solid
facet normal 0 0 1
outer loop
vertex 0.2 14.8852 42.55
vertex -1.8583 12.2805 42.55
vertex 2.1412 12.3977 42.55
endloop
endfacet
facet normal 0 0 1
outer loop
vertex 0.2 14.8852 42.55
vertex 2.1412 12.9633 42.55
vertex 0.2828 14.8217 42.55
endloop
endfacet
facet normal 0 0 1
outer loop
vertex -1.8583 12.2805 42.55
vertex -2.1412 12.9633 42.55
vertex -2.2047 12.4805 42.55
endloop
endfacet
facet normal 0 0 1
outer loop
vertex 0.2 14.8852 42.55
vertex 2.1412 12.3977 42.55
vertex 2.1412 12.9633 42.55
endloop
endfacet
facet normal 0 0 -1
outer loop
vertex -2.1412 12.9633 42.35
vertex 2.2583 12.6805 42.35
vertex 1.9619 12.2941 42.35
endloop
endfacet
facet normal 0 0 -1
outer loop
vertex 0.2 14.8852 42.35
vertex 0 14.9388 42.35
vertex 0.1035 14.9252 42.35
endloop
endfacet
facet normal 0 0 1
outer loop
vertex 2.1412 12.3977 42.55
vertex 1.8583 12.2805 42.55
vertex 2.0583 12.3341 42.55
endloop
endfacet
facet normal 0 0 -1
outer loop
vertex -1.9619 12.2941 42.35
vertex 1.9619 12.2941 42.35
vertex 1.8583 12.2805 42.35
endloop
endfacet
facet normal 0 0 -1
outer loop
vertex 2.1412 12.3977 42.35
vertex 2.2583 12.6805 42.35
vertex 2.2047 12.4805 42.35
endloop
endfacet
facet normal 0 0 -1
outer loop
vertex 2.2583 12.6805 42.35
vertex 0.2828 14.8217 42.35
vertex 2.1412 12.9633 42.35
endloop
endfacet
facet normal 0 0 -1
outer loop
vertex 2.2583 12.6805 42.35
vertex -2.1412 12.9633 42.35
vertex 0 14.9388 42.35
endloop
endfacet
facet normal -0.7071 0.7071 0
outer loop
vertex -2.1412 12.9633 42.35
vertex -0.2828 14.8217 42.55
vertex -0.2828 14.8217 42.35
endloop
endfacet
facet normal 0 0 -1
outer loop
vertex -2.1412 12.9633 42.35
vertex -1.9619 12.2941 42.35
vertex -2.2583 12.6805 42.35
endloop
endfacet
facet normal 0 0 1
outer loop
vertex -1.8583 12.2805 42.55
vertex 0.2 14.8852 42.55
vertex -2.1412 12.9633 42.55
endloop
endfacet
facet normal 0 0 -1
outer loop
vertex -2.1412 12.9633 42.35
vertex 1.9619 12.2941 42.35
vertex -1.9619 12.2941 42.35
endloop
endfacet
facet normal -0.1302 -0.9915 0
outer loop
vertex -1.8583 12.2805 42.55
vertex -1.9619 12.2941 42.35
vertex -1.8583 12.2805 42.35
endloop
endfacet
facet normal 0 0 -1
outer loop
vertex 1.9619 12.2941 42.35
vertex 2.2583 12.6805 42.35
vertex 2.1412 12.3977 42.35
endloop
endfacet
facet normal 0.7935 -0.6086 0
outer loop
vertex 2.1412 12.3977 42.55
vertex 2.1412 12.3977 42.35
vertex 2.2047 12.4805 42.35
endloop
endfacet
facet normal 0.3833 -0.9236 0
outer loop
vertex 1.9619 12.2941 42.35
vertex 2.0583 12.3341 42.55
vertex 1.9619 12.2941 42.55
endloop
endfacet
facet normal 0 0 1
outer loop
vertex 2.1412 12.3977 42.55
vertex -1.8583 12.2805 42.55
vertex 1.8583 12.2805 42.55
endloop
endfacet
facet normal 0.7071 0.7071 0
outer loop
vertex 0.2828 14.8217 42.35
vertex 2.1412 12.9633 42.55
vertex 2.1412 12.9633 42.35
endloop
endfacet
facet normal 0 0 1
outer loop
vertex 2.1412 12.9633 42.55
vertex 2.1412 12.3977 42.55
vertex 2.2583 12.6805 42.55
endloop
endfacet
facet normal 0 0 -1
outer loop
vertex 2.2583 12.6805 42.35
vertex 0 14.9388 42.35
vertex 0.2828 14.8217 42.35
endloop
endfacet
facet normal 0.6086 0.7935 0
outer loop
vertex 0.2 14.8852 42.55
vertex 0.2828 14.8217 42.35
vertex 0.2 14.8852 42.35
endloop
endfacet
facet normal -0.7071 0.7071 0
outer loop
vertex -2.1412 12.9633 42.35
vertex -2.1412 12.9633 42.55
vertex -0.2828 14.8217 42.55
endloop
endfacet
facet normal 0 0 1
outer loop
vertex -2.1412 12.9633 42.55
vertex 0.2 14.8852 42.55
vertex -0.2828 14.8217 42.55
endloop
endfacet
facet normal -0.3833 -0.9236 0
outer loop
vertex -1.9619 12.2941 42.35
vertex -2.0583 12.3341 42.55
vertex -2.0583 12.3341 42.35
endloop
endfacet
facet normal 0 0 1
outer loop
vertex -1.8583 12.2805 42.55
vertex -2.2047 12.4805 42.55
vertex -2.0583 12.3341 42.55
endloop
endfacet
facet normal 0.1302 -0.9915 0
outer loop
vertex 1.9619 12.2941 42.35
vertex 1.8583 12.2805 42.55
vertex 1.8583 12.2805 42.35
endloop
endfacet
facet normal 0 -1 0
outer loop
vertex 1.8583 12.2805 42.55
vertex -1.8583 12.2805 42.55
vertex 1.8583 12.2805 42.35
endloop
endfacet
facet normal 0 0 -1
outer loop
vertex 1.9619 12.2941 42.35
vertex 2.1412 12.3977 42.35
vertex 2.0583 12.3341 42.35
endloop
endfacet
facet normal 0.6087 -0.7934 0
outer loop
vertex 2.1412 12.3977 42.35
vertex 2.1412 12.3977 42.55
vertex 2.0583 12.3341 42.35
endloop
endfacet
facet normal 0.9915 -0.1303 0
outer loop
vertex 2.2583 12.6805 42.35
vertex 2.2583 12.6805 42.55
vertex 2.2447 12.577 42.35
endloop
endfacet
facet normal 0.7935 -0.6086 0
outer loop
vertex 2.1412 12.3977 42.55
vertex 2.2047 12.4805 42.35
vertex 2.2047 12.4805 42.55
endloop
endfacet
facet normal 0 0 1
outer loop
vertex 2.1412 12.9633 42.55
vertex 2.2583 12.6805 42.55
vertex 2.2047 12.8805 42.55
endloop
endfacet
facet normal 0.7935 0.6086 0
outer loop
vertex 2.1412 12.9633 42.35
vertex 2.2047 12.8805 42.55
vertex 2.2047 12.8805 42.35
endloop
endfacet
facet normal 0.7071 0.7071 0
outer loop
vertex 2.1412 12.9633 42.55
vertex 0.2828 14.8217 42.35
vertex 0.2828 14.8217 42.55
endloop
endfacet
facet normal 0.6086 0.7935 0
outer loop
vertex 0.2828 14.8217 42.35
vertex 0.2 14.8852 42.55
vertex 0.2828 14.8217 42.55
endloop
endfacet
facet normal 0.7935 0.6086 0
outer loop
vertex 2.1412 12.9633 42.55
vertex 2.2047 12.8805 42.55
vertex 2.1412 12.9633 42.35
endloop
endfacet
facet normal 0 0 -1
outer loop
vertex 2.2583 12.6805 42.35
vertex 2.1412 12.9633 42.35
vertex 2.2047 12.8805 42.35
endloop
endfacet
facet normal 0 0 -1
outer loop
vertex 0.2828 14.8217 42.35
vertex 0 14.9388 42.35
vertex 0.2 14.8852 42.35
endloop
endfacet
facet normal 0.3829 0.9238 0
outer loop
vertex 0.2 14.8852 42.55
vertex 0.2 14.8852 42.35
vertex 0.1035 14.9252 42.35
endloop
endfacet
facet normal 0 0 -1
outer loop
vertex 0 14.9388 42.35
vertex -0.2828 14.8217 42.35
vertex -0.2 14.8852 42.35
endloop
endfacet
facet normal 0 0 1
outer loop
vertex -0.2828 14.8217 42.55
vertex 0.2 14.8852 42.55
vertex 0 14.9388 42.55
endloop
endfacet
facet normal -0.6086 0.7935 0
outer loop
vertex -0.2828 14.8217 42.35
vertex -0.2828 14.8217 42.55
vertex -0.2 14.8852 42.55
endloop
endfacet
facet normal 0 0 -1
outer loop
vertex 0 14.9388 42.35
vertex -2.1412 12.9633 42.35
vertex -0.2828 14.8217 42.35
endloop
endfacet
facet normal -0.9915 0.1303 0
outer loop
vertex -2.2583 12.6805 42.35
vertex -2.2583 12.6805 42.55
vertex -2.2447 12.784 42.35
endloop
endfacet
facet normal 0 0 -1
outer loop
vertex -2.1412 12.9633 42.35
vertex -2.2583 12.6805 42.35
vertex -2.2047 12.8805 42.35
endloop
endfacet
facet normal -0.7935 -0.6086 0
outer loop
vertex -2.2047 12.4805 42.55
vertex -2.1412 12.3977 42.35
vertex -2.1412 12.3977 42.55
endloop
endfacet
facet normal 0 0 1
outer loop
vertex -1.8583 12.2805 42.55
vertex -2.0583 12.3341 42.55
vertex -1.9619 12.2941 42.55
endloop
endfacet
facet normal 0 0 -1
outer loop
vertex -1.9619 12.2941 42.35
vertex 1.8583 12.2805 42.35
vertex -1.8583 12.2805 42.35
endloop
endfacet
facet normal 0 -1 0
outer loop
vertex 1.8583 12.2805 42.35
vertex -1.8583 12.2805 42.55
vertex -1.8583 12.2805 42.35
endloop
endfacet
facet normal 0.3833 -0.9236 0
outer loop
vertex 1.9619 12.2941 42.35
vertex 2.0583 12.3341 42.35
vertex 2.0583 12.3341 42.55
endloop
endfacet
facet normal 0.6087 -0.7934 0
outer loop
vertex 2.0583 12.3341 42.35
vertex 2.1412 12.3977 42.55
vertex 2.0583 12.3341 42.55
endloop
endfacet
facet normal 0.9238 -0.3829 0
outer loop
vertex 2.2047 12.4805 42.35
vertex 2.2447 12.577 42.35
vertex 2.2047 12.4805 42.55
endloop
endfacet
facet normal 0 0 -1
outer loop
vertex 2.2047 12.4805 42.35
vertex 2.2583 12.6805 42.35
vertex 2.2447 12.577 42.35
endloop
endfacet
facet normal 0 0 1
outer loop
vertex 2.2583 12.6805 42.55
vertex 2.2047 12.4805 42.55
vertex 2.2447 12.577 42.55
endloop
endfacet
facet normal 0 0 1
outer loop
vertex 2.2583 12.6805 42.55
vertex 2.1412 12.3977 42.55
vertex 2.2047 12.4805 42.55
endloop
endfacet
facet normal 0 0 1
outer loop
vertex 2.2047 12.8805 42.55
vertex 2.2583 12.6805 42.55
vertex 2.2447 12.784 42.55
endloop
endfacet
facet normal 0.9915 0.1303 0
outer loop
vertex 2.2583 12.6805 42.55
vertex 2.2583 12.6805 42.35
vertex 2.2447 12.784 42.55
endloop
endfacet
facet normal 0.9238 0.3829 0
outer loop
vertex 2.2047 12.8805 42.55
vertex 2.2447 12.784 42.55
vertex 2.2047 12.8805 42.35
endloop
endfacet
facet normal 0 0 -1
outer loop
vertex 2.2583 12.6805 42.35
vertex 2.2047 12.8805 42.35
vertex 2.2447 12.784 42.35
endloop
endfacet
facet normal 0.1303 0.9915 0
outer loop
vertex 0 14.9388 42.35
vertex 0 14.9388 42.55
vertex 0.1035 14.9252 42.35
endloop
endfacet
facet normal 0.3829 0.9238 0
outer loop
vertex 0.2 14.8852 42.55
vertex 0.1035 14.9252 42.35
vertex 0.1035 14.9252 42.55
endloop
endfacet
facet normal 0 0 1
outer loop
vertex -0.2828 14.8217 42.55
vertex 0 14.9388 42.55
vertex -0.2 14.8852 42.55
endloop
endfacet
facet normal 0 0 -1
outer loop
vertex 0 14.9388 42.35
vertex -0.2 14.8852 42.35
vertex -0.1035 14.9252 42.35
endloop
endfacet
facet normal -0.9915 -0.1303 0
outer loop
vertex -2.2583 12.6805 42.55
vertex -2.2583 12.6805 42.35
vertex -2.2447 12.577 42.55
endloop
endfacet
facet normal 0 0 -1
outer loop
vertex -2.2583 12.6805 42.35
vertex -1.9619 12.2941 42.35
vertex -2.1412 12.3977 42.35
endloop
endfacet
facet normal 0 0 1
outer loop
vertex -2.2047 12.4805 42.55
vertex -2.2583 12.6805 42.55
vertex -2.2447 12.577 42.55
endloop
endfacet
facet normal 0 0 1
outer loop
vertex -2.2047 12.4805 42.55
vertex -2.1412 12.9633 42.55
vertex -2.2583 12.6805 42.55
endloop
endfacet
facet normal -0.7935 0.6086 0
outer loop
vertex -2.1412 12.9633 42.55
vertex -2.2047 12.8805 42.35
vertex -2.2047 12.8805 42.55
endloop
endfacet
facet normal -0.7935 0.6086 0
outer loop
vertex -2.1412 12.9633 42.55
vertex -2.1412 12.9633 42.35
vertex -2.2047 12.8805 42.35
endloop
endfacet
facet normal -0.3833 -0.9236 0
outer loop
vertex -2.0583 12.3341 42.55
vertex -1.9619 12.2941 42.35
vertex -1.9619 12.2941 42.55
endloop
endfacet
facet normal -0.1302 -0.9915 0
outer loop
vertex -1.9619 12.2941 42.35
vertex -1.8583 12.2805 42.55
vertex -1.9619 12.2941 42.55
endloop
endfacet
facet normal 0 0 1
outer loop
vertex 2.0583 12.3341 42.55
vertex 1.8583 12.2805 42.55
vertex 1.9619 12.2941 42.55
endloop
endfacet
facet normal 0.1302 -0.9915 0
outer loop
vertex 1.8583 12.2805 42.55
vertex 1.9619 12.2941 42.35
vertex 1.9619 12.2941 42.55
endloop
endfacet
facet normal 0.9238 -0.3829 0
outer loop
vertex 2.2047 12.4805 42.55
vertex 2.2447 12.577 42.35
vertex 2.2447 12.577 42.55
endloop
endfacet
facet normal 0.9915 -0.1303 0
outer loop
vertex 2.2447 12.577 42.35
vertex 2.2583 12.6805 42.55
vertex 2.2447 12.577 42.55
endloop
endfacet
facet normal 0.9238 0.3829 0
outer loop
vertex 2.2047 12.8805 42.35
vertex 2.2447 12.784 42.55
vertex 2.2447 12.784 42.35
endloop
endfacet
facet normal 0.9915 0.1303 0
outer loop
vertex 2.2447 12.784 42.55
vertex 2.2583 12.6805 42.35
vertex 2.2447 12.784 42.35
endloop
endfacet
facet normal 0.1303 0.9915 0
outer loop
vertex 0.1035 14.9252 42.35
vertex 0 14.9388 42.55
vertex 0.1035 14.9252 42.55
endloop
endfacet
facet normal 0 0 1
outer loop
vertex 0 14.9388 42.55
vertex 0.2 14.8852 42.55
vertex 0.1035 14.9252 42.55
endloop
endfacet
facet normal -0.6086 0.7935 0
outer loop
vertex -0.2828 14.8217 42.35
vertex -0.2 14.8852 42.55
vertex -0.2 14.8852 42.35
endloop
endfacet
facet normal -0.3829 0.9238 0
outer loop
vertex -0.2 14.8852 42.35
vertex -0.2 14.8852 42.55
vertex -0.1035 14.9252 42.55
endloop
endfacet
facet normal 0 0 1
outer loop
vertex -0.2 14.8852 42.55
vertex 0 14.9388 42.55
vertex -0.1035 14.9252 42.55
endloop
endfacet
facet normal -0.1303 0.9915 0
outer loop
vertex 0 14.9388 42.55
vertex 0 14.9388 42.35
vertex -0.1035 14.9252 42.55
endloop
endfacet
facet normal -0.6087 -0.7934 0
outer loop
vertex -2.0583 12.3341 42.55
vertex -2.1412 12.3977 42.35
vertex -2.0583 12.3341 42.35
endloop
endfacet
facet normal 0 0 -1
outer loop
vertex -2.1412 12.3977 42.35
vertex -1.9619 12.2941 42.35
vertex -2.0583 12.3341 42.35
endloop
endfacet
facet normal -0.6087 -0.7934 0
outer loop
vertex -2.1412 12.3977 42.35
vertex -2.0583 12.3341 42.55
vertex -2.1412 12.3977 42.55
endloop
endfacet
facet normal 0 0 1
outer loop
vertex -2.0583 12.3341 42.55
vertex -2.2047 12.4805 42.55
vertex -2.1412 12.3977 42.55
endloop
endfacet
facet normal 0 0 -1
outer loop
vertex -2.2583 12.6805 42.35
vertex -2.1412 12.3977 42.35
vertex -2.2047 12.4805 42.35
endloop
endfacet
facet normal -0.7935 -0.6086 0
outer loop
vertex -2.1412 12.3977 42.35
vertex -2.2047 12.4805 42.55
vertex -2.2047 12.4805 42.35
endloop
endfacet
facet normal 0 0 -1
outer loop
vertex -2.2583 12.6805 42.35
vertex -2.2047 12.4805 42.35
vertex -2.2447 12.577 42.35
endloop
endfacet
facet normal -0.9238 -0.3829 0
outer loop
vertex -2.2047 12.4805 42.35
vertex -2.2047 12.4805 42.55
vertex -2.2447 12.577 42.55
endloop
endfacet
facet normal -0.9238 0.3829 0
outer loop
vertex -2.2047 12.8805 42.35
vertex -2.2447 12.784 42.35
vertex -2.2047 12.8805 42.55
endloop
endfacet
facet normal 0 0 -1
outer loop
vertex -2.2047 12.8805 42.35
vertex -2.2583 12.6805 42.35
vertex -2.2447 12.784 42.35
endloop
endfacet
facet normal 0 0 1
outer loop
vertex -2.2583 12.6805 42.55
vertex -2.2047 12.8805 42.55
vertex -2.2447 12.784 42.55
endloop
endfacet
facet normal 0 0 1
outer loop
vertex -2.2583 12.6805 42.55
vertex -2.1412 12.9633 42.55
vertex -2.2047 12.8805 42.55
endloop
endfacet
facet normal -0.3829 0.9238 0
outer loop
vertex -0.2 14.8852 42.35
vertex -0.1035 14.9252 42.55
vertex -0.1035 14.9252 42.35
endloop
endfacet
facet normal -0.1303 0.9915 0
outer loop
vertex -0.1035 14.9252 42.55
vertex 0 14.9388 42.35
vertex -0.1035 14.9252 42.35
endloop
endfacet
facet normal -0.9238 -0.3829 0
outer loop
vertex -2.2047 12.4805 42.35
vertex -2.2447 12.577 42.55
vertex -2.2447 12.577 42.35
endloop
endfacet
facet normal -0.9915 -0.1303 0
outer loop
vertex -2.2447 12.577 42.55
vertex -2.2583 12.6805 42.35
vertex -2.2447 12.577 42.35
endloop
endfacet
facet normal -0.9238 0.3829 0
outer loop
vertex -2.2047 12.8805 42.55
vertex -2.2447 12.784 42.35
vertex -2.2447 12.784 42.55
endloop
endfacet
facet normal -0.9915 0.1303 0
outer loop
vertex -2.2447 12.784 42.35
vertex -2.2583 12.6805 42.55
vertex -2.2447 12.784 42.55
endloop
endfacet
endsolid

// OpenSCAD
// file: def.scad
round_radius = 0.6;
sticker_margin = 1.2;
sticker_round_radius = 0.4;
cube_size = 60;
disk_height = 12.5;
disk_radius = cube_size / 2;
base_size = cube_size / 2 / sqrt(10 + 7 * sqrt(2));
cut1_dis = base_size * (1 + sqrt(2) / 2);
cut2_dis = cube_size / 2;
inf = cube_size * 10;

module _cube() {
    cube([cube_size - round_radius * 2, cube_size - round_radius * 2, cube_size - round_radius * 2], center = true);
}

module _disk() {
    translate([0, 0, cube_size / 2 + disk_height / 2])
        cylinder(r = disk_radius - round_radius, h = disk_height - round_radius * 2, center = true, $fn = 96);
}

module _int_cut1() {
    translate([-inf, -inf, cut1_dis + round_radius])
        cube([inf * 2, inf * 2, inf]);
}

module _dif_cut1() {
    translate([-inf, -inf, cut1_dis - round_radius])
        cube([inf * 2, inf * 2, inf]);
}

module _sticker_int_cut1() {
    translate([-inf, -inf, cut1_dis + sticker_margin])
        cube([inf * 2, inf * 2, inf]);
}

module _sticker_dif_cut1() {
    translate([-inf, -inf, cut1_dis - sticker_margin])
        cube([inf * 2, inf * 2, inf]);
}

module _int_cut2() {
    translate([-inf, -inf, cut2_dis + round_radius])
        cube([inf * 2, inf * 2, inf]);
}

module _dif_cut2() {
    translate([-inf, -inf, cut2_dis - round_radius])
        cube([inf * 2, inf * 2, inf]);
}

module _sticker_int_cut2() {
    translate([-inf, -inf, cut2_dis + sticker_margin])
        cube([inf * 2, inf * 2, inf]);
}

module _sticker_dif_cut2() {
    translate([-inf, -inf, cut2_dis - sticker_margin])
        cube([inf * 2, inf * 2, inf]);
}

module _sticker_cube() {
    translate([-cube_size / 2 + sticker_margin, -cube_size / 2 + sticker_margin, cube_size / 2 - 0.05])
        cube([cube_size - sticker_margin * 2, cube_size - sticker_margin * 2, 0.1]);
}

module _sticker_disk() {
    translate([0, 0, cube_size / 2 + disk_height - 0.05])
        cylinder(r = disk_radius - sticker_margin, h = 0.1, center = true, $fn = 96);
}
// main file
include <def.scad>

module sticker_12b() {
    minkowski() {
        difference() {
            intersection() {
                _sticker_disk();
                rotate([-90, 0, 0])
                    _sticker_int_cut1();
            }
            for (deg = [45, -45])
                rotate([-90, 0, deg])
                    _sticker_dif_cut1();
        }
        cylinder(r = sticker_round_radius, h = 0.1, center = true, $fn = 24);
    }
}

sticker_12b();
